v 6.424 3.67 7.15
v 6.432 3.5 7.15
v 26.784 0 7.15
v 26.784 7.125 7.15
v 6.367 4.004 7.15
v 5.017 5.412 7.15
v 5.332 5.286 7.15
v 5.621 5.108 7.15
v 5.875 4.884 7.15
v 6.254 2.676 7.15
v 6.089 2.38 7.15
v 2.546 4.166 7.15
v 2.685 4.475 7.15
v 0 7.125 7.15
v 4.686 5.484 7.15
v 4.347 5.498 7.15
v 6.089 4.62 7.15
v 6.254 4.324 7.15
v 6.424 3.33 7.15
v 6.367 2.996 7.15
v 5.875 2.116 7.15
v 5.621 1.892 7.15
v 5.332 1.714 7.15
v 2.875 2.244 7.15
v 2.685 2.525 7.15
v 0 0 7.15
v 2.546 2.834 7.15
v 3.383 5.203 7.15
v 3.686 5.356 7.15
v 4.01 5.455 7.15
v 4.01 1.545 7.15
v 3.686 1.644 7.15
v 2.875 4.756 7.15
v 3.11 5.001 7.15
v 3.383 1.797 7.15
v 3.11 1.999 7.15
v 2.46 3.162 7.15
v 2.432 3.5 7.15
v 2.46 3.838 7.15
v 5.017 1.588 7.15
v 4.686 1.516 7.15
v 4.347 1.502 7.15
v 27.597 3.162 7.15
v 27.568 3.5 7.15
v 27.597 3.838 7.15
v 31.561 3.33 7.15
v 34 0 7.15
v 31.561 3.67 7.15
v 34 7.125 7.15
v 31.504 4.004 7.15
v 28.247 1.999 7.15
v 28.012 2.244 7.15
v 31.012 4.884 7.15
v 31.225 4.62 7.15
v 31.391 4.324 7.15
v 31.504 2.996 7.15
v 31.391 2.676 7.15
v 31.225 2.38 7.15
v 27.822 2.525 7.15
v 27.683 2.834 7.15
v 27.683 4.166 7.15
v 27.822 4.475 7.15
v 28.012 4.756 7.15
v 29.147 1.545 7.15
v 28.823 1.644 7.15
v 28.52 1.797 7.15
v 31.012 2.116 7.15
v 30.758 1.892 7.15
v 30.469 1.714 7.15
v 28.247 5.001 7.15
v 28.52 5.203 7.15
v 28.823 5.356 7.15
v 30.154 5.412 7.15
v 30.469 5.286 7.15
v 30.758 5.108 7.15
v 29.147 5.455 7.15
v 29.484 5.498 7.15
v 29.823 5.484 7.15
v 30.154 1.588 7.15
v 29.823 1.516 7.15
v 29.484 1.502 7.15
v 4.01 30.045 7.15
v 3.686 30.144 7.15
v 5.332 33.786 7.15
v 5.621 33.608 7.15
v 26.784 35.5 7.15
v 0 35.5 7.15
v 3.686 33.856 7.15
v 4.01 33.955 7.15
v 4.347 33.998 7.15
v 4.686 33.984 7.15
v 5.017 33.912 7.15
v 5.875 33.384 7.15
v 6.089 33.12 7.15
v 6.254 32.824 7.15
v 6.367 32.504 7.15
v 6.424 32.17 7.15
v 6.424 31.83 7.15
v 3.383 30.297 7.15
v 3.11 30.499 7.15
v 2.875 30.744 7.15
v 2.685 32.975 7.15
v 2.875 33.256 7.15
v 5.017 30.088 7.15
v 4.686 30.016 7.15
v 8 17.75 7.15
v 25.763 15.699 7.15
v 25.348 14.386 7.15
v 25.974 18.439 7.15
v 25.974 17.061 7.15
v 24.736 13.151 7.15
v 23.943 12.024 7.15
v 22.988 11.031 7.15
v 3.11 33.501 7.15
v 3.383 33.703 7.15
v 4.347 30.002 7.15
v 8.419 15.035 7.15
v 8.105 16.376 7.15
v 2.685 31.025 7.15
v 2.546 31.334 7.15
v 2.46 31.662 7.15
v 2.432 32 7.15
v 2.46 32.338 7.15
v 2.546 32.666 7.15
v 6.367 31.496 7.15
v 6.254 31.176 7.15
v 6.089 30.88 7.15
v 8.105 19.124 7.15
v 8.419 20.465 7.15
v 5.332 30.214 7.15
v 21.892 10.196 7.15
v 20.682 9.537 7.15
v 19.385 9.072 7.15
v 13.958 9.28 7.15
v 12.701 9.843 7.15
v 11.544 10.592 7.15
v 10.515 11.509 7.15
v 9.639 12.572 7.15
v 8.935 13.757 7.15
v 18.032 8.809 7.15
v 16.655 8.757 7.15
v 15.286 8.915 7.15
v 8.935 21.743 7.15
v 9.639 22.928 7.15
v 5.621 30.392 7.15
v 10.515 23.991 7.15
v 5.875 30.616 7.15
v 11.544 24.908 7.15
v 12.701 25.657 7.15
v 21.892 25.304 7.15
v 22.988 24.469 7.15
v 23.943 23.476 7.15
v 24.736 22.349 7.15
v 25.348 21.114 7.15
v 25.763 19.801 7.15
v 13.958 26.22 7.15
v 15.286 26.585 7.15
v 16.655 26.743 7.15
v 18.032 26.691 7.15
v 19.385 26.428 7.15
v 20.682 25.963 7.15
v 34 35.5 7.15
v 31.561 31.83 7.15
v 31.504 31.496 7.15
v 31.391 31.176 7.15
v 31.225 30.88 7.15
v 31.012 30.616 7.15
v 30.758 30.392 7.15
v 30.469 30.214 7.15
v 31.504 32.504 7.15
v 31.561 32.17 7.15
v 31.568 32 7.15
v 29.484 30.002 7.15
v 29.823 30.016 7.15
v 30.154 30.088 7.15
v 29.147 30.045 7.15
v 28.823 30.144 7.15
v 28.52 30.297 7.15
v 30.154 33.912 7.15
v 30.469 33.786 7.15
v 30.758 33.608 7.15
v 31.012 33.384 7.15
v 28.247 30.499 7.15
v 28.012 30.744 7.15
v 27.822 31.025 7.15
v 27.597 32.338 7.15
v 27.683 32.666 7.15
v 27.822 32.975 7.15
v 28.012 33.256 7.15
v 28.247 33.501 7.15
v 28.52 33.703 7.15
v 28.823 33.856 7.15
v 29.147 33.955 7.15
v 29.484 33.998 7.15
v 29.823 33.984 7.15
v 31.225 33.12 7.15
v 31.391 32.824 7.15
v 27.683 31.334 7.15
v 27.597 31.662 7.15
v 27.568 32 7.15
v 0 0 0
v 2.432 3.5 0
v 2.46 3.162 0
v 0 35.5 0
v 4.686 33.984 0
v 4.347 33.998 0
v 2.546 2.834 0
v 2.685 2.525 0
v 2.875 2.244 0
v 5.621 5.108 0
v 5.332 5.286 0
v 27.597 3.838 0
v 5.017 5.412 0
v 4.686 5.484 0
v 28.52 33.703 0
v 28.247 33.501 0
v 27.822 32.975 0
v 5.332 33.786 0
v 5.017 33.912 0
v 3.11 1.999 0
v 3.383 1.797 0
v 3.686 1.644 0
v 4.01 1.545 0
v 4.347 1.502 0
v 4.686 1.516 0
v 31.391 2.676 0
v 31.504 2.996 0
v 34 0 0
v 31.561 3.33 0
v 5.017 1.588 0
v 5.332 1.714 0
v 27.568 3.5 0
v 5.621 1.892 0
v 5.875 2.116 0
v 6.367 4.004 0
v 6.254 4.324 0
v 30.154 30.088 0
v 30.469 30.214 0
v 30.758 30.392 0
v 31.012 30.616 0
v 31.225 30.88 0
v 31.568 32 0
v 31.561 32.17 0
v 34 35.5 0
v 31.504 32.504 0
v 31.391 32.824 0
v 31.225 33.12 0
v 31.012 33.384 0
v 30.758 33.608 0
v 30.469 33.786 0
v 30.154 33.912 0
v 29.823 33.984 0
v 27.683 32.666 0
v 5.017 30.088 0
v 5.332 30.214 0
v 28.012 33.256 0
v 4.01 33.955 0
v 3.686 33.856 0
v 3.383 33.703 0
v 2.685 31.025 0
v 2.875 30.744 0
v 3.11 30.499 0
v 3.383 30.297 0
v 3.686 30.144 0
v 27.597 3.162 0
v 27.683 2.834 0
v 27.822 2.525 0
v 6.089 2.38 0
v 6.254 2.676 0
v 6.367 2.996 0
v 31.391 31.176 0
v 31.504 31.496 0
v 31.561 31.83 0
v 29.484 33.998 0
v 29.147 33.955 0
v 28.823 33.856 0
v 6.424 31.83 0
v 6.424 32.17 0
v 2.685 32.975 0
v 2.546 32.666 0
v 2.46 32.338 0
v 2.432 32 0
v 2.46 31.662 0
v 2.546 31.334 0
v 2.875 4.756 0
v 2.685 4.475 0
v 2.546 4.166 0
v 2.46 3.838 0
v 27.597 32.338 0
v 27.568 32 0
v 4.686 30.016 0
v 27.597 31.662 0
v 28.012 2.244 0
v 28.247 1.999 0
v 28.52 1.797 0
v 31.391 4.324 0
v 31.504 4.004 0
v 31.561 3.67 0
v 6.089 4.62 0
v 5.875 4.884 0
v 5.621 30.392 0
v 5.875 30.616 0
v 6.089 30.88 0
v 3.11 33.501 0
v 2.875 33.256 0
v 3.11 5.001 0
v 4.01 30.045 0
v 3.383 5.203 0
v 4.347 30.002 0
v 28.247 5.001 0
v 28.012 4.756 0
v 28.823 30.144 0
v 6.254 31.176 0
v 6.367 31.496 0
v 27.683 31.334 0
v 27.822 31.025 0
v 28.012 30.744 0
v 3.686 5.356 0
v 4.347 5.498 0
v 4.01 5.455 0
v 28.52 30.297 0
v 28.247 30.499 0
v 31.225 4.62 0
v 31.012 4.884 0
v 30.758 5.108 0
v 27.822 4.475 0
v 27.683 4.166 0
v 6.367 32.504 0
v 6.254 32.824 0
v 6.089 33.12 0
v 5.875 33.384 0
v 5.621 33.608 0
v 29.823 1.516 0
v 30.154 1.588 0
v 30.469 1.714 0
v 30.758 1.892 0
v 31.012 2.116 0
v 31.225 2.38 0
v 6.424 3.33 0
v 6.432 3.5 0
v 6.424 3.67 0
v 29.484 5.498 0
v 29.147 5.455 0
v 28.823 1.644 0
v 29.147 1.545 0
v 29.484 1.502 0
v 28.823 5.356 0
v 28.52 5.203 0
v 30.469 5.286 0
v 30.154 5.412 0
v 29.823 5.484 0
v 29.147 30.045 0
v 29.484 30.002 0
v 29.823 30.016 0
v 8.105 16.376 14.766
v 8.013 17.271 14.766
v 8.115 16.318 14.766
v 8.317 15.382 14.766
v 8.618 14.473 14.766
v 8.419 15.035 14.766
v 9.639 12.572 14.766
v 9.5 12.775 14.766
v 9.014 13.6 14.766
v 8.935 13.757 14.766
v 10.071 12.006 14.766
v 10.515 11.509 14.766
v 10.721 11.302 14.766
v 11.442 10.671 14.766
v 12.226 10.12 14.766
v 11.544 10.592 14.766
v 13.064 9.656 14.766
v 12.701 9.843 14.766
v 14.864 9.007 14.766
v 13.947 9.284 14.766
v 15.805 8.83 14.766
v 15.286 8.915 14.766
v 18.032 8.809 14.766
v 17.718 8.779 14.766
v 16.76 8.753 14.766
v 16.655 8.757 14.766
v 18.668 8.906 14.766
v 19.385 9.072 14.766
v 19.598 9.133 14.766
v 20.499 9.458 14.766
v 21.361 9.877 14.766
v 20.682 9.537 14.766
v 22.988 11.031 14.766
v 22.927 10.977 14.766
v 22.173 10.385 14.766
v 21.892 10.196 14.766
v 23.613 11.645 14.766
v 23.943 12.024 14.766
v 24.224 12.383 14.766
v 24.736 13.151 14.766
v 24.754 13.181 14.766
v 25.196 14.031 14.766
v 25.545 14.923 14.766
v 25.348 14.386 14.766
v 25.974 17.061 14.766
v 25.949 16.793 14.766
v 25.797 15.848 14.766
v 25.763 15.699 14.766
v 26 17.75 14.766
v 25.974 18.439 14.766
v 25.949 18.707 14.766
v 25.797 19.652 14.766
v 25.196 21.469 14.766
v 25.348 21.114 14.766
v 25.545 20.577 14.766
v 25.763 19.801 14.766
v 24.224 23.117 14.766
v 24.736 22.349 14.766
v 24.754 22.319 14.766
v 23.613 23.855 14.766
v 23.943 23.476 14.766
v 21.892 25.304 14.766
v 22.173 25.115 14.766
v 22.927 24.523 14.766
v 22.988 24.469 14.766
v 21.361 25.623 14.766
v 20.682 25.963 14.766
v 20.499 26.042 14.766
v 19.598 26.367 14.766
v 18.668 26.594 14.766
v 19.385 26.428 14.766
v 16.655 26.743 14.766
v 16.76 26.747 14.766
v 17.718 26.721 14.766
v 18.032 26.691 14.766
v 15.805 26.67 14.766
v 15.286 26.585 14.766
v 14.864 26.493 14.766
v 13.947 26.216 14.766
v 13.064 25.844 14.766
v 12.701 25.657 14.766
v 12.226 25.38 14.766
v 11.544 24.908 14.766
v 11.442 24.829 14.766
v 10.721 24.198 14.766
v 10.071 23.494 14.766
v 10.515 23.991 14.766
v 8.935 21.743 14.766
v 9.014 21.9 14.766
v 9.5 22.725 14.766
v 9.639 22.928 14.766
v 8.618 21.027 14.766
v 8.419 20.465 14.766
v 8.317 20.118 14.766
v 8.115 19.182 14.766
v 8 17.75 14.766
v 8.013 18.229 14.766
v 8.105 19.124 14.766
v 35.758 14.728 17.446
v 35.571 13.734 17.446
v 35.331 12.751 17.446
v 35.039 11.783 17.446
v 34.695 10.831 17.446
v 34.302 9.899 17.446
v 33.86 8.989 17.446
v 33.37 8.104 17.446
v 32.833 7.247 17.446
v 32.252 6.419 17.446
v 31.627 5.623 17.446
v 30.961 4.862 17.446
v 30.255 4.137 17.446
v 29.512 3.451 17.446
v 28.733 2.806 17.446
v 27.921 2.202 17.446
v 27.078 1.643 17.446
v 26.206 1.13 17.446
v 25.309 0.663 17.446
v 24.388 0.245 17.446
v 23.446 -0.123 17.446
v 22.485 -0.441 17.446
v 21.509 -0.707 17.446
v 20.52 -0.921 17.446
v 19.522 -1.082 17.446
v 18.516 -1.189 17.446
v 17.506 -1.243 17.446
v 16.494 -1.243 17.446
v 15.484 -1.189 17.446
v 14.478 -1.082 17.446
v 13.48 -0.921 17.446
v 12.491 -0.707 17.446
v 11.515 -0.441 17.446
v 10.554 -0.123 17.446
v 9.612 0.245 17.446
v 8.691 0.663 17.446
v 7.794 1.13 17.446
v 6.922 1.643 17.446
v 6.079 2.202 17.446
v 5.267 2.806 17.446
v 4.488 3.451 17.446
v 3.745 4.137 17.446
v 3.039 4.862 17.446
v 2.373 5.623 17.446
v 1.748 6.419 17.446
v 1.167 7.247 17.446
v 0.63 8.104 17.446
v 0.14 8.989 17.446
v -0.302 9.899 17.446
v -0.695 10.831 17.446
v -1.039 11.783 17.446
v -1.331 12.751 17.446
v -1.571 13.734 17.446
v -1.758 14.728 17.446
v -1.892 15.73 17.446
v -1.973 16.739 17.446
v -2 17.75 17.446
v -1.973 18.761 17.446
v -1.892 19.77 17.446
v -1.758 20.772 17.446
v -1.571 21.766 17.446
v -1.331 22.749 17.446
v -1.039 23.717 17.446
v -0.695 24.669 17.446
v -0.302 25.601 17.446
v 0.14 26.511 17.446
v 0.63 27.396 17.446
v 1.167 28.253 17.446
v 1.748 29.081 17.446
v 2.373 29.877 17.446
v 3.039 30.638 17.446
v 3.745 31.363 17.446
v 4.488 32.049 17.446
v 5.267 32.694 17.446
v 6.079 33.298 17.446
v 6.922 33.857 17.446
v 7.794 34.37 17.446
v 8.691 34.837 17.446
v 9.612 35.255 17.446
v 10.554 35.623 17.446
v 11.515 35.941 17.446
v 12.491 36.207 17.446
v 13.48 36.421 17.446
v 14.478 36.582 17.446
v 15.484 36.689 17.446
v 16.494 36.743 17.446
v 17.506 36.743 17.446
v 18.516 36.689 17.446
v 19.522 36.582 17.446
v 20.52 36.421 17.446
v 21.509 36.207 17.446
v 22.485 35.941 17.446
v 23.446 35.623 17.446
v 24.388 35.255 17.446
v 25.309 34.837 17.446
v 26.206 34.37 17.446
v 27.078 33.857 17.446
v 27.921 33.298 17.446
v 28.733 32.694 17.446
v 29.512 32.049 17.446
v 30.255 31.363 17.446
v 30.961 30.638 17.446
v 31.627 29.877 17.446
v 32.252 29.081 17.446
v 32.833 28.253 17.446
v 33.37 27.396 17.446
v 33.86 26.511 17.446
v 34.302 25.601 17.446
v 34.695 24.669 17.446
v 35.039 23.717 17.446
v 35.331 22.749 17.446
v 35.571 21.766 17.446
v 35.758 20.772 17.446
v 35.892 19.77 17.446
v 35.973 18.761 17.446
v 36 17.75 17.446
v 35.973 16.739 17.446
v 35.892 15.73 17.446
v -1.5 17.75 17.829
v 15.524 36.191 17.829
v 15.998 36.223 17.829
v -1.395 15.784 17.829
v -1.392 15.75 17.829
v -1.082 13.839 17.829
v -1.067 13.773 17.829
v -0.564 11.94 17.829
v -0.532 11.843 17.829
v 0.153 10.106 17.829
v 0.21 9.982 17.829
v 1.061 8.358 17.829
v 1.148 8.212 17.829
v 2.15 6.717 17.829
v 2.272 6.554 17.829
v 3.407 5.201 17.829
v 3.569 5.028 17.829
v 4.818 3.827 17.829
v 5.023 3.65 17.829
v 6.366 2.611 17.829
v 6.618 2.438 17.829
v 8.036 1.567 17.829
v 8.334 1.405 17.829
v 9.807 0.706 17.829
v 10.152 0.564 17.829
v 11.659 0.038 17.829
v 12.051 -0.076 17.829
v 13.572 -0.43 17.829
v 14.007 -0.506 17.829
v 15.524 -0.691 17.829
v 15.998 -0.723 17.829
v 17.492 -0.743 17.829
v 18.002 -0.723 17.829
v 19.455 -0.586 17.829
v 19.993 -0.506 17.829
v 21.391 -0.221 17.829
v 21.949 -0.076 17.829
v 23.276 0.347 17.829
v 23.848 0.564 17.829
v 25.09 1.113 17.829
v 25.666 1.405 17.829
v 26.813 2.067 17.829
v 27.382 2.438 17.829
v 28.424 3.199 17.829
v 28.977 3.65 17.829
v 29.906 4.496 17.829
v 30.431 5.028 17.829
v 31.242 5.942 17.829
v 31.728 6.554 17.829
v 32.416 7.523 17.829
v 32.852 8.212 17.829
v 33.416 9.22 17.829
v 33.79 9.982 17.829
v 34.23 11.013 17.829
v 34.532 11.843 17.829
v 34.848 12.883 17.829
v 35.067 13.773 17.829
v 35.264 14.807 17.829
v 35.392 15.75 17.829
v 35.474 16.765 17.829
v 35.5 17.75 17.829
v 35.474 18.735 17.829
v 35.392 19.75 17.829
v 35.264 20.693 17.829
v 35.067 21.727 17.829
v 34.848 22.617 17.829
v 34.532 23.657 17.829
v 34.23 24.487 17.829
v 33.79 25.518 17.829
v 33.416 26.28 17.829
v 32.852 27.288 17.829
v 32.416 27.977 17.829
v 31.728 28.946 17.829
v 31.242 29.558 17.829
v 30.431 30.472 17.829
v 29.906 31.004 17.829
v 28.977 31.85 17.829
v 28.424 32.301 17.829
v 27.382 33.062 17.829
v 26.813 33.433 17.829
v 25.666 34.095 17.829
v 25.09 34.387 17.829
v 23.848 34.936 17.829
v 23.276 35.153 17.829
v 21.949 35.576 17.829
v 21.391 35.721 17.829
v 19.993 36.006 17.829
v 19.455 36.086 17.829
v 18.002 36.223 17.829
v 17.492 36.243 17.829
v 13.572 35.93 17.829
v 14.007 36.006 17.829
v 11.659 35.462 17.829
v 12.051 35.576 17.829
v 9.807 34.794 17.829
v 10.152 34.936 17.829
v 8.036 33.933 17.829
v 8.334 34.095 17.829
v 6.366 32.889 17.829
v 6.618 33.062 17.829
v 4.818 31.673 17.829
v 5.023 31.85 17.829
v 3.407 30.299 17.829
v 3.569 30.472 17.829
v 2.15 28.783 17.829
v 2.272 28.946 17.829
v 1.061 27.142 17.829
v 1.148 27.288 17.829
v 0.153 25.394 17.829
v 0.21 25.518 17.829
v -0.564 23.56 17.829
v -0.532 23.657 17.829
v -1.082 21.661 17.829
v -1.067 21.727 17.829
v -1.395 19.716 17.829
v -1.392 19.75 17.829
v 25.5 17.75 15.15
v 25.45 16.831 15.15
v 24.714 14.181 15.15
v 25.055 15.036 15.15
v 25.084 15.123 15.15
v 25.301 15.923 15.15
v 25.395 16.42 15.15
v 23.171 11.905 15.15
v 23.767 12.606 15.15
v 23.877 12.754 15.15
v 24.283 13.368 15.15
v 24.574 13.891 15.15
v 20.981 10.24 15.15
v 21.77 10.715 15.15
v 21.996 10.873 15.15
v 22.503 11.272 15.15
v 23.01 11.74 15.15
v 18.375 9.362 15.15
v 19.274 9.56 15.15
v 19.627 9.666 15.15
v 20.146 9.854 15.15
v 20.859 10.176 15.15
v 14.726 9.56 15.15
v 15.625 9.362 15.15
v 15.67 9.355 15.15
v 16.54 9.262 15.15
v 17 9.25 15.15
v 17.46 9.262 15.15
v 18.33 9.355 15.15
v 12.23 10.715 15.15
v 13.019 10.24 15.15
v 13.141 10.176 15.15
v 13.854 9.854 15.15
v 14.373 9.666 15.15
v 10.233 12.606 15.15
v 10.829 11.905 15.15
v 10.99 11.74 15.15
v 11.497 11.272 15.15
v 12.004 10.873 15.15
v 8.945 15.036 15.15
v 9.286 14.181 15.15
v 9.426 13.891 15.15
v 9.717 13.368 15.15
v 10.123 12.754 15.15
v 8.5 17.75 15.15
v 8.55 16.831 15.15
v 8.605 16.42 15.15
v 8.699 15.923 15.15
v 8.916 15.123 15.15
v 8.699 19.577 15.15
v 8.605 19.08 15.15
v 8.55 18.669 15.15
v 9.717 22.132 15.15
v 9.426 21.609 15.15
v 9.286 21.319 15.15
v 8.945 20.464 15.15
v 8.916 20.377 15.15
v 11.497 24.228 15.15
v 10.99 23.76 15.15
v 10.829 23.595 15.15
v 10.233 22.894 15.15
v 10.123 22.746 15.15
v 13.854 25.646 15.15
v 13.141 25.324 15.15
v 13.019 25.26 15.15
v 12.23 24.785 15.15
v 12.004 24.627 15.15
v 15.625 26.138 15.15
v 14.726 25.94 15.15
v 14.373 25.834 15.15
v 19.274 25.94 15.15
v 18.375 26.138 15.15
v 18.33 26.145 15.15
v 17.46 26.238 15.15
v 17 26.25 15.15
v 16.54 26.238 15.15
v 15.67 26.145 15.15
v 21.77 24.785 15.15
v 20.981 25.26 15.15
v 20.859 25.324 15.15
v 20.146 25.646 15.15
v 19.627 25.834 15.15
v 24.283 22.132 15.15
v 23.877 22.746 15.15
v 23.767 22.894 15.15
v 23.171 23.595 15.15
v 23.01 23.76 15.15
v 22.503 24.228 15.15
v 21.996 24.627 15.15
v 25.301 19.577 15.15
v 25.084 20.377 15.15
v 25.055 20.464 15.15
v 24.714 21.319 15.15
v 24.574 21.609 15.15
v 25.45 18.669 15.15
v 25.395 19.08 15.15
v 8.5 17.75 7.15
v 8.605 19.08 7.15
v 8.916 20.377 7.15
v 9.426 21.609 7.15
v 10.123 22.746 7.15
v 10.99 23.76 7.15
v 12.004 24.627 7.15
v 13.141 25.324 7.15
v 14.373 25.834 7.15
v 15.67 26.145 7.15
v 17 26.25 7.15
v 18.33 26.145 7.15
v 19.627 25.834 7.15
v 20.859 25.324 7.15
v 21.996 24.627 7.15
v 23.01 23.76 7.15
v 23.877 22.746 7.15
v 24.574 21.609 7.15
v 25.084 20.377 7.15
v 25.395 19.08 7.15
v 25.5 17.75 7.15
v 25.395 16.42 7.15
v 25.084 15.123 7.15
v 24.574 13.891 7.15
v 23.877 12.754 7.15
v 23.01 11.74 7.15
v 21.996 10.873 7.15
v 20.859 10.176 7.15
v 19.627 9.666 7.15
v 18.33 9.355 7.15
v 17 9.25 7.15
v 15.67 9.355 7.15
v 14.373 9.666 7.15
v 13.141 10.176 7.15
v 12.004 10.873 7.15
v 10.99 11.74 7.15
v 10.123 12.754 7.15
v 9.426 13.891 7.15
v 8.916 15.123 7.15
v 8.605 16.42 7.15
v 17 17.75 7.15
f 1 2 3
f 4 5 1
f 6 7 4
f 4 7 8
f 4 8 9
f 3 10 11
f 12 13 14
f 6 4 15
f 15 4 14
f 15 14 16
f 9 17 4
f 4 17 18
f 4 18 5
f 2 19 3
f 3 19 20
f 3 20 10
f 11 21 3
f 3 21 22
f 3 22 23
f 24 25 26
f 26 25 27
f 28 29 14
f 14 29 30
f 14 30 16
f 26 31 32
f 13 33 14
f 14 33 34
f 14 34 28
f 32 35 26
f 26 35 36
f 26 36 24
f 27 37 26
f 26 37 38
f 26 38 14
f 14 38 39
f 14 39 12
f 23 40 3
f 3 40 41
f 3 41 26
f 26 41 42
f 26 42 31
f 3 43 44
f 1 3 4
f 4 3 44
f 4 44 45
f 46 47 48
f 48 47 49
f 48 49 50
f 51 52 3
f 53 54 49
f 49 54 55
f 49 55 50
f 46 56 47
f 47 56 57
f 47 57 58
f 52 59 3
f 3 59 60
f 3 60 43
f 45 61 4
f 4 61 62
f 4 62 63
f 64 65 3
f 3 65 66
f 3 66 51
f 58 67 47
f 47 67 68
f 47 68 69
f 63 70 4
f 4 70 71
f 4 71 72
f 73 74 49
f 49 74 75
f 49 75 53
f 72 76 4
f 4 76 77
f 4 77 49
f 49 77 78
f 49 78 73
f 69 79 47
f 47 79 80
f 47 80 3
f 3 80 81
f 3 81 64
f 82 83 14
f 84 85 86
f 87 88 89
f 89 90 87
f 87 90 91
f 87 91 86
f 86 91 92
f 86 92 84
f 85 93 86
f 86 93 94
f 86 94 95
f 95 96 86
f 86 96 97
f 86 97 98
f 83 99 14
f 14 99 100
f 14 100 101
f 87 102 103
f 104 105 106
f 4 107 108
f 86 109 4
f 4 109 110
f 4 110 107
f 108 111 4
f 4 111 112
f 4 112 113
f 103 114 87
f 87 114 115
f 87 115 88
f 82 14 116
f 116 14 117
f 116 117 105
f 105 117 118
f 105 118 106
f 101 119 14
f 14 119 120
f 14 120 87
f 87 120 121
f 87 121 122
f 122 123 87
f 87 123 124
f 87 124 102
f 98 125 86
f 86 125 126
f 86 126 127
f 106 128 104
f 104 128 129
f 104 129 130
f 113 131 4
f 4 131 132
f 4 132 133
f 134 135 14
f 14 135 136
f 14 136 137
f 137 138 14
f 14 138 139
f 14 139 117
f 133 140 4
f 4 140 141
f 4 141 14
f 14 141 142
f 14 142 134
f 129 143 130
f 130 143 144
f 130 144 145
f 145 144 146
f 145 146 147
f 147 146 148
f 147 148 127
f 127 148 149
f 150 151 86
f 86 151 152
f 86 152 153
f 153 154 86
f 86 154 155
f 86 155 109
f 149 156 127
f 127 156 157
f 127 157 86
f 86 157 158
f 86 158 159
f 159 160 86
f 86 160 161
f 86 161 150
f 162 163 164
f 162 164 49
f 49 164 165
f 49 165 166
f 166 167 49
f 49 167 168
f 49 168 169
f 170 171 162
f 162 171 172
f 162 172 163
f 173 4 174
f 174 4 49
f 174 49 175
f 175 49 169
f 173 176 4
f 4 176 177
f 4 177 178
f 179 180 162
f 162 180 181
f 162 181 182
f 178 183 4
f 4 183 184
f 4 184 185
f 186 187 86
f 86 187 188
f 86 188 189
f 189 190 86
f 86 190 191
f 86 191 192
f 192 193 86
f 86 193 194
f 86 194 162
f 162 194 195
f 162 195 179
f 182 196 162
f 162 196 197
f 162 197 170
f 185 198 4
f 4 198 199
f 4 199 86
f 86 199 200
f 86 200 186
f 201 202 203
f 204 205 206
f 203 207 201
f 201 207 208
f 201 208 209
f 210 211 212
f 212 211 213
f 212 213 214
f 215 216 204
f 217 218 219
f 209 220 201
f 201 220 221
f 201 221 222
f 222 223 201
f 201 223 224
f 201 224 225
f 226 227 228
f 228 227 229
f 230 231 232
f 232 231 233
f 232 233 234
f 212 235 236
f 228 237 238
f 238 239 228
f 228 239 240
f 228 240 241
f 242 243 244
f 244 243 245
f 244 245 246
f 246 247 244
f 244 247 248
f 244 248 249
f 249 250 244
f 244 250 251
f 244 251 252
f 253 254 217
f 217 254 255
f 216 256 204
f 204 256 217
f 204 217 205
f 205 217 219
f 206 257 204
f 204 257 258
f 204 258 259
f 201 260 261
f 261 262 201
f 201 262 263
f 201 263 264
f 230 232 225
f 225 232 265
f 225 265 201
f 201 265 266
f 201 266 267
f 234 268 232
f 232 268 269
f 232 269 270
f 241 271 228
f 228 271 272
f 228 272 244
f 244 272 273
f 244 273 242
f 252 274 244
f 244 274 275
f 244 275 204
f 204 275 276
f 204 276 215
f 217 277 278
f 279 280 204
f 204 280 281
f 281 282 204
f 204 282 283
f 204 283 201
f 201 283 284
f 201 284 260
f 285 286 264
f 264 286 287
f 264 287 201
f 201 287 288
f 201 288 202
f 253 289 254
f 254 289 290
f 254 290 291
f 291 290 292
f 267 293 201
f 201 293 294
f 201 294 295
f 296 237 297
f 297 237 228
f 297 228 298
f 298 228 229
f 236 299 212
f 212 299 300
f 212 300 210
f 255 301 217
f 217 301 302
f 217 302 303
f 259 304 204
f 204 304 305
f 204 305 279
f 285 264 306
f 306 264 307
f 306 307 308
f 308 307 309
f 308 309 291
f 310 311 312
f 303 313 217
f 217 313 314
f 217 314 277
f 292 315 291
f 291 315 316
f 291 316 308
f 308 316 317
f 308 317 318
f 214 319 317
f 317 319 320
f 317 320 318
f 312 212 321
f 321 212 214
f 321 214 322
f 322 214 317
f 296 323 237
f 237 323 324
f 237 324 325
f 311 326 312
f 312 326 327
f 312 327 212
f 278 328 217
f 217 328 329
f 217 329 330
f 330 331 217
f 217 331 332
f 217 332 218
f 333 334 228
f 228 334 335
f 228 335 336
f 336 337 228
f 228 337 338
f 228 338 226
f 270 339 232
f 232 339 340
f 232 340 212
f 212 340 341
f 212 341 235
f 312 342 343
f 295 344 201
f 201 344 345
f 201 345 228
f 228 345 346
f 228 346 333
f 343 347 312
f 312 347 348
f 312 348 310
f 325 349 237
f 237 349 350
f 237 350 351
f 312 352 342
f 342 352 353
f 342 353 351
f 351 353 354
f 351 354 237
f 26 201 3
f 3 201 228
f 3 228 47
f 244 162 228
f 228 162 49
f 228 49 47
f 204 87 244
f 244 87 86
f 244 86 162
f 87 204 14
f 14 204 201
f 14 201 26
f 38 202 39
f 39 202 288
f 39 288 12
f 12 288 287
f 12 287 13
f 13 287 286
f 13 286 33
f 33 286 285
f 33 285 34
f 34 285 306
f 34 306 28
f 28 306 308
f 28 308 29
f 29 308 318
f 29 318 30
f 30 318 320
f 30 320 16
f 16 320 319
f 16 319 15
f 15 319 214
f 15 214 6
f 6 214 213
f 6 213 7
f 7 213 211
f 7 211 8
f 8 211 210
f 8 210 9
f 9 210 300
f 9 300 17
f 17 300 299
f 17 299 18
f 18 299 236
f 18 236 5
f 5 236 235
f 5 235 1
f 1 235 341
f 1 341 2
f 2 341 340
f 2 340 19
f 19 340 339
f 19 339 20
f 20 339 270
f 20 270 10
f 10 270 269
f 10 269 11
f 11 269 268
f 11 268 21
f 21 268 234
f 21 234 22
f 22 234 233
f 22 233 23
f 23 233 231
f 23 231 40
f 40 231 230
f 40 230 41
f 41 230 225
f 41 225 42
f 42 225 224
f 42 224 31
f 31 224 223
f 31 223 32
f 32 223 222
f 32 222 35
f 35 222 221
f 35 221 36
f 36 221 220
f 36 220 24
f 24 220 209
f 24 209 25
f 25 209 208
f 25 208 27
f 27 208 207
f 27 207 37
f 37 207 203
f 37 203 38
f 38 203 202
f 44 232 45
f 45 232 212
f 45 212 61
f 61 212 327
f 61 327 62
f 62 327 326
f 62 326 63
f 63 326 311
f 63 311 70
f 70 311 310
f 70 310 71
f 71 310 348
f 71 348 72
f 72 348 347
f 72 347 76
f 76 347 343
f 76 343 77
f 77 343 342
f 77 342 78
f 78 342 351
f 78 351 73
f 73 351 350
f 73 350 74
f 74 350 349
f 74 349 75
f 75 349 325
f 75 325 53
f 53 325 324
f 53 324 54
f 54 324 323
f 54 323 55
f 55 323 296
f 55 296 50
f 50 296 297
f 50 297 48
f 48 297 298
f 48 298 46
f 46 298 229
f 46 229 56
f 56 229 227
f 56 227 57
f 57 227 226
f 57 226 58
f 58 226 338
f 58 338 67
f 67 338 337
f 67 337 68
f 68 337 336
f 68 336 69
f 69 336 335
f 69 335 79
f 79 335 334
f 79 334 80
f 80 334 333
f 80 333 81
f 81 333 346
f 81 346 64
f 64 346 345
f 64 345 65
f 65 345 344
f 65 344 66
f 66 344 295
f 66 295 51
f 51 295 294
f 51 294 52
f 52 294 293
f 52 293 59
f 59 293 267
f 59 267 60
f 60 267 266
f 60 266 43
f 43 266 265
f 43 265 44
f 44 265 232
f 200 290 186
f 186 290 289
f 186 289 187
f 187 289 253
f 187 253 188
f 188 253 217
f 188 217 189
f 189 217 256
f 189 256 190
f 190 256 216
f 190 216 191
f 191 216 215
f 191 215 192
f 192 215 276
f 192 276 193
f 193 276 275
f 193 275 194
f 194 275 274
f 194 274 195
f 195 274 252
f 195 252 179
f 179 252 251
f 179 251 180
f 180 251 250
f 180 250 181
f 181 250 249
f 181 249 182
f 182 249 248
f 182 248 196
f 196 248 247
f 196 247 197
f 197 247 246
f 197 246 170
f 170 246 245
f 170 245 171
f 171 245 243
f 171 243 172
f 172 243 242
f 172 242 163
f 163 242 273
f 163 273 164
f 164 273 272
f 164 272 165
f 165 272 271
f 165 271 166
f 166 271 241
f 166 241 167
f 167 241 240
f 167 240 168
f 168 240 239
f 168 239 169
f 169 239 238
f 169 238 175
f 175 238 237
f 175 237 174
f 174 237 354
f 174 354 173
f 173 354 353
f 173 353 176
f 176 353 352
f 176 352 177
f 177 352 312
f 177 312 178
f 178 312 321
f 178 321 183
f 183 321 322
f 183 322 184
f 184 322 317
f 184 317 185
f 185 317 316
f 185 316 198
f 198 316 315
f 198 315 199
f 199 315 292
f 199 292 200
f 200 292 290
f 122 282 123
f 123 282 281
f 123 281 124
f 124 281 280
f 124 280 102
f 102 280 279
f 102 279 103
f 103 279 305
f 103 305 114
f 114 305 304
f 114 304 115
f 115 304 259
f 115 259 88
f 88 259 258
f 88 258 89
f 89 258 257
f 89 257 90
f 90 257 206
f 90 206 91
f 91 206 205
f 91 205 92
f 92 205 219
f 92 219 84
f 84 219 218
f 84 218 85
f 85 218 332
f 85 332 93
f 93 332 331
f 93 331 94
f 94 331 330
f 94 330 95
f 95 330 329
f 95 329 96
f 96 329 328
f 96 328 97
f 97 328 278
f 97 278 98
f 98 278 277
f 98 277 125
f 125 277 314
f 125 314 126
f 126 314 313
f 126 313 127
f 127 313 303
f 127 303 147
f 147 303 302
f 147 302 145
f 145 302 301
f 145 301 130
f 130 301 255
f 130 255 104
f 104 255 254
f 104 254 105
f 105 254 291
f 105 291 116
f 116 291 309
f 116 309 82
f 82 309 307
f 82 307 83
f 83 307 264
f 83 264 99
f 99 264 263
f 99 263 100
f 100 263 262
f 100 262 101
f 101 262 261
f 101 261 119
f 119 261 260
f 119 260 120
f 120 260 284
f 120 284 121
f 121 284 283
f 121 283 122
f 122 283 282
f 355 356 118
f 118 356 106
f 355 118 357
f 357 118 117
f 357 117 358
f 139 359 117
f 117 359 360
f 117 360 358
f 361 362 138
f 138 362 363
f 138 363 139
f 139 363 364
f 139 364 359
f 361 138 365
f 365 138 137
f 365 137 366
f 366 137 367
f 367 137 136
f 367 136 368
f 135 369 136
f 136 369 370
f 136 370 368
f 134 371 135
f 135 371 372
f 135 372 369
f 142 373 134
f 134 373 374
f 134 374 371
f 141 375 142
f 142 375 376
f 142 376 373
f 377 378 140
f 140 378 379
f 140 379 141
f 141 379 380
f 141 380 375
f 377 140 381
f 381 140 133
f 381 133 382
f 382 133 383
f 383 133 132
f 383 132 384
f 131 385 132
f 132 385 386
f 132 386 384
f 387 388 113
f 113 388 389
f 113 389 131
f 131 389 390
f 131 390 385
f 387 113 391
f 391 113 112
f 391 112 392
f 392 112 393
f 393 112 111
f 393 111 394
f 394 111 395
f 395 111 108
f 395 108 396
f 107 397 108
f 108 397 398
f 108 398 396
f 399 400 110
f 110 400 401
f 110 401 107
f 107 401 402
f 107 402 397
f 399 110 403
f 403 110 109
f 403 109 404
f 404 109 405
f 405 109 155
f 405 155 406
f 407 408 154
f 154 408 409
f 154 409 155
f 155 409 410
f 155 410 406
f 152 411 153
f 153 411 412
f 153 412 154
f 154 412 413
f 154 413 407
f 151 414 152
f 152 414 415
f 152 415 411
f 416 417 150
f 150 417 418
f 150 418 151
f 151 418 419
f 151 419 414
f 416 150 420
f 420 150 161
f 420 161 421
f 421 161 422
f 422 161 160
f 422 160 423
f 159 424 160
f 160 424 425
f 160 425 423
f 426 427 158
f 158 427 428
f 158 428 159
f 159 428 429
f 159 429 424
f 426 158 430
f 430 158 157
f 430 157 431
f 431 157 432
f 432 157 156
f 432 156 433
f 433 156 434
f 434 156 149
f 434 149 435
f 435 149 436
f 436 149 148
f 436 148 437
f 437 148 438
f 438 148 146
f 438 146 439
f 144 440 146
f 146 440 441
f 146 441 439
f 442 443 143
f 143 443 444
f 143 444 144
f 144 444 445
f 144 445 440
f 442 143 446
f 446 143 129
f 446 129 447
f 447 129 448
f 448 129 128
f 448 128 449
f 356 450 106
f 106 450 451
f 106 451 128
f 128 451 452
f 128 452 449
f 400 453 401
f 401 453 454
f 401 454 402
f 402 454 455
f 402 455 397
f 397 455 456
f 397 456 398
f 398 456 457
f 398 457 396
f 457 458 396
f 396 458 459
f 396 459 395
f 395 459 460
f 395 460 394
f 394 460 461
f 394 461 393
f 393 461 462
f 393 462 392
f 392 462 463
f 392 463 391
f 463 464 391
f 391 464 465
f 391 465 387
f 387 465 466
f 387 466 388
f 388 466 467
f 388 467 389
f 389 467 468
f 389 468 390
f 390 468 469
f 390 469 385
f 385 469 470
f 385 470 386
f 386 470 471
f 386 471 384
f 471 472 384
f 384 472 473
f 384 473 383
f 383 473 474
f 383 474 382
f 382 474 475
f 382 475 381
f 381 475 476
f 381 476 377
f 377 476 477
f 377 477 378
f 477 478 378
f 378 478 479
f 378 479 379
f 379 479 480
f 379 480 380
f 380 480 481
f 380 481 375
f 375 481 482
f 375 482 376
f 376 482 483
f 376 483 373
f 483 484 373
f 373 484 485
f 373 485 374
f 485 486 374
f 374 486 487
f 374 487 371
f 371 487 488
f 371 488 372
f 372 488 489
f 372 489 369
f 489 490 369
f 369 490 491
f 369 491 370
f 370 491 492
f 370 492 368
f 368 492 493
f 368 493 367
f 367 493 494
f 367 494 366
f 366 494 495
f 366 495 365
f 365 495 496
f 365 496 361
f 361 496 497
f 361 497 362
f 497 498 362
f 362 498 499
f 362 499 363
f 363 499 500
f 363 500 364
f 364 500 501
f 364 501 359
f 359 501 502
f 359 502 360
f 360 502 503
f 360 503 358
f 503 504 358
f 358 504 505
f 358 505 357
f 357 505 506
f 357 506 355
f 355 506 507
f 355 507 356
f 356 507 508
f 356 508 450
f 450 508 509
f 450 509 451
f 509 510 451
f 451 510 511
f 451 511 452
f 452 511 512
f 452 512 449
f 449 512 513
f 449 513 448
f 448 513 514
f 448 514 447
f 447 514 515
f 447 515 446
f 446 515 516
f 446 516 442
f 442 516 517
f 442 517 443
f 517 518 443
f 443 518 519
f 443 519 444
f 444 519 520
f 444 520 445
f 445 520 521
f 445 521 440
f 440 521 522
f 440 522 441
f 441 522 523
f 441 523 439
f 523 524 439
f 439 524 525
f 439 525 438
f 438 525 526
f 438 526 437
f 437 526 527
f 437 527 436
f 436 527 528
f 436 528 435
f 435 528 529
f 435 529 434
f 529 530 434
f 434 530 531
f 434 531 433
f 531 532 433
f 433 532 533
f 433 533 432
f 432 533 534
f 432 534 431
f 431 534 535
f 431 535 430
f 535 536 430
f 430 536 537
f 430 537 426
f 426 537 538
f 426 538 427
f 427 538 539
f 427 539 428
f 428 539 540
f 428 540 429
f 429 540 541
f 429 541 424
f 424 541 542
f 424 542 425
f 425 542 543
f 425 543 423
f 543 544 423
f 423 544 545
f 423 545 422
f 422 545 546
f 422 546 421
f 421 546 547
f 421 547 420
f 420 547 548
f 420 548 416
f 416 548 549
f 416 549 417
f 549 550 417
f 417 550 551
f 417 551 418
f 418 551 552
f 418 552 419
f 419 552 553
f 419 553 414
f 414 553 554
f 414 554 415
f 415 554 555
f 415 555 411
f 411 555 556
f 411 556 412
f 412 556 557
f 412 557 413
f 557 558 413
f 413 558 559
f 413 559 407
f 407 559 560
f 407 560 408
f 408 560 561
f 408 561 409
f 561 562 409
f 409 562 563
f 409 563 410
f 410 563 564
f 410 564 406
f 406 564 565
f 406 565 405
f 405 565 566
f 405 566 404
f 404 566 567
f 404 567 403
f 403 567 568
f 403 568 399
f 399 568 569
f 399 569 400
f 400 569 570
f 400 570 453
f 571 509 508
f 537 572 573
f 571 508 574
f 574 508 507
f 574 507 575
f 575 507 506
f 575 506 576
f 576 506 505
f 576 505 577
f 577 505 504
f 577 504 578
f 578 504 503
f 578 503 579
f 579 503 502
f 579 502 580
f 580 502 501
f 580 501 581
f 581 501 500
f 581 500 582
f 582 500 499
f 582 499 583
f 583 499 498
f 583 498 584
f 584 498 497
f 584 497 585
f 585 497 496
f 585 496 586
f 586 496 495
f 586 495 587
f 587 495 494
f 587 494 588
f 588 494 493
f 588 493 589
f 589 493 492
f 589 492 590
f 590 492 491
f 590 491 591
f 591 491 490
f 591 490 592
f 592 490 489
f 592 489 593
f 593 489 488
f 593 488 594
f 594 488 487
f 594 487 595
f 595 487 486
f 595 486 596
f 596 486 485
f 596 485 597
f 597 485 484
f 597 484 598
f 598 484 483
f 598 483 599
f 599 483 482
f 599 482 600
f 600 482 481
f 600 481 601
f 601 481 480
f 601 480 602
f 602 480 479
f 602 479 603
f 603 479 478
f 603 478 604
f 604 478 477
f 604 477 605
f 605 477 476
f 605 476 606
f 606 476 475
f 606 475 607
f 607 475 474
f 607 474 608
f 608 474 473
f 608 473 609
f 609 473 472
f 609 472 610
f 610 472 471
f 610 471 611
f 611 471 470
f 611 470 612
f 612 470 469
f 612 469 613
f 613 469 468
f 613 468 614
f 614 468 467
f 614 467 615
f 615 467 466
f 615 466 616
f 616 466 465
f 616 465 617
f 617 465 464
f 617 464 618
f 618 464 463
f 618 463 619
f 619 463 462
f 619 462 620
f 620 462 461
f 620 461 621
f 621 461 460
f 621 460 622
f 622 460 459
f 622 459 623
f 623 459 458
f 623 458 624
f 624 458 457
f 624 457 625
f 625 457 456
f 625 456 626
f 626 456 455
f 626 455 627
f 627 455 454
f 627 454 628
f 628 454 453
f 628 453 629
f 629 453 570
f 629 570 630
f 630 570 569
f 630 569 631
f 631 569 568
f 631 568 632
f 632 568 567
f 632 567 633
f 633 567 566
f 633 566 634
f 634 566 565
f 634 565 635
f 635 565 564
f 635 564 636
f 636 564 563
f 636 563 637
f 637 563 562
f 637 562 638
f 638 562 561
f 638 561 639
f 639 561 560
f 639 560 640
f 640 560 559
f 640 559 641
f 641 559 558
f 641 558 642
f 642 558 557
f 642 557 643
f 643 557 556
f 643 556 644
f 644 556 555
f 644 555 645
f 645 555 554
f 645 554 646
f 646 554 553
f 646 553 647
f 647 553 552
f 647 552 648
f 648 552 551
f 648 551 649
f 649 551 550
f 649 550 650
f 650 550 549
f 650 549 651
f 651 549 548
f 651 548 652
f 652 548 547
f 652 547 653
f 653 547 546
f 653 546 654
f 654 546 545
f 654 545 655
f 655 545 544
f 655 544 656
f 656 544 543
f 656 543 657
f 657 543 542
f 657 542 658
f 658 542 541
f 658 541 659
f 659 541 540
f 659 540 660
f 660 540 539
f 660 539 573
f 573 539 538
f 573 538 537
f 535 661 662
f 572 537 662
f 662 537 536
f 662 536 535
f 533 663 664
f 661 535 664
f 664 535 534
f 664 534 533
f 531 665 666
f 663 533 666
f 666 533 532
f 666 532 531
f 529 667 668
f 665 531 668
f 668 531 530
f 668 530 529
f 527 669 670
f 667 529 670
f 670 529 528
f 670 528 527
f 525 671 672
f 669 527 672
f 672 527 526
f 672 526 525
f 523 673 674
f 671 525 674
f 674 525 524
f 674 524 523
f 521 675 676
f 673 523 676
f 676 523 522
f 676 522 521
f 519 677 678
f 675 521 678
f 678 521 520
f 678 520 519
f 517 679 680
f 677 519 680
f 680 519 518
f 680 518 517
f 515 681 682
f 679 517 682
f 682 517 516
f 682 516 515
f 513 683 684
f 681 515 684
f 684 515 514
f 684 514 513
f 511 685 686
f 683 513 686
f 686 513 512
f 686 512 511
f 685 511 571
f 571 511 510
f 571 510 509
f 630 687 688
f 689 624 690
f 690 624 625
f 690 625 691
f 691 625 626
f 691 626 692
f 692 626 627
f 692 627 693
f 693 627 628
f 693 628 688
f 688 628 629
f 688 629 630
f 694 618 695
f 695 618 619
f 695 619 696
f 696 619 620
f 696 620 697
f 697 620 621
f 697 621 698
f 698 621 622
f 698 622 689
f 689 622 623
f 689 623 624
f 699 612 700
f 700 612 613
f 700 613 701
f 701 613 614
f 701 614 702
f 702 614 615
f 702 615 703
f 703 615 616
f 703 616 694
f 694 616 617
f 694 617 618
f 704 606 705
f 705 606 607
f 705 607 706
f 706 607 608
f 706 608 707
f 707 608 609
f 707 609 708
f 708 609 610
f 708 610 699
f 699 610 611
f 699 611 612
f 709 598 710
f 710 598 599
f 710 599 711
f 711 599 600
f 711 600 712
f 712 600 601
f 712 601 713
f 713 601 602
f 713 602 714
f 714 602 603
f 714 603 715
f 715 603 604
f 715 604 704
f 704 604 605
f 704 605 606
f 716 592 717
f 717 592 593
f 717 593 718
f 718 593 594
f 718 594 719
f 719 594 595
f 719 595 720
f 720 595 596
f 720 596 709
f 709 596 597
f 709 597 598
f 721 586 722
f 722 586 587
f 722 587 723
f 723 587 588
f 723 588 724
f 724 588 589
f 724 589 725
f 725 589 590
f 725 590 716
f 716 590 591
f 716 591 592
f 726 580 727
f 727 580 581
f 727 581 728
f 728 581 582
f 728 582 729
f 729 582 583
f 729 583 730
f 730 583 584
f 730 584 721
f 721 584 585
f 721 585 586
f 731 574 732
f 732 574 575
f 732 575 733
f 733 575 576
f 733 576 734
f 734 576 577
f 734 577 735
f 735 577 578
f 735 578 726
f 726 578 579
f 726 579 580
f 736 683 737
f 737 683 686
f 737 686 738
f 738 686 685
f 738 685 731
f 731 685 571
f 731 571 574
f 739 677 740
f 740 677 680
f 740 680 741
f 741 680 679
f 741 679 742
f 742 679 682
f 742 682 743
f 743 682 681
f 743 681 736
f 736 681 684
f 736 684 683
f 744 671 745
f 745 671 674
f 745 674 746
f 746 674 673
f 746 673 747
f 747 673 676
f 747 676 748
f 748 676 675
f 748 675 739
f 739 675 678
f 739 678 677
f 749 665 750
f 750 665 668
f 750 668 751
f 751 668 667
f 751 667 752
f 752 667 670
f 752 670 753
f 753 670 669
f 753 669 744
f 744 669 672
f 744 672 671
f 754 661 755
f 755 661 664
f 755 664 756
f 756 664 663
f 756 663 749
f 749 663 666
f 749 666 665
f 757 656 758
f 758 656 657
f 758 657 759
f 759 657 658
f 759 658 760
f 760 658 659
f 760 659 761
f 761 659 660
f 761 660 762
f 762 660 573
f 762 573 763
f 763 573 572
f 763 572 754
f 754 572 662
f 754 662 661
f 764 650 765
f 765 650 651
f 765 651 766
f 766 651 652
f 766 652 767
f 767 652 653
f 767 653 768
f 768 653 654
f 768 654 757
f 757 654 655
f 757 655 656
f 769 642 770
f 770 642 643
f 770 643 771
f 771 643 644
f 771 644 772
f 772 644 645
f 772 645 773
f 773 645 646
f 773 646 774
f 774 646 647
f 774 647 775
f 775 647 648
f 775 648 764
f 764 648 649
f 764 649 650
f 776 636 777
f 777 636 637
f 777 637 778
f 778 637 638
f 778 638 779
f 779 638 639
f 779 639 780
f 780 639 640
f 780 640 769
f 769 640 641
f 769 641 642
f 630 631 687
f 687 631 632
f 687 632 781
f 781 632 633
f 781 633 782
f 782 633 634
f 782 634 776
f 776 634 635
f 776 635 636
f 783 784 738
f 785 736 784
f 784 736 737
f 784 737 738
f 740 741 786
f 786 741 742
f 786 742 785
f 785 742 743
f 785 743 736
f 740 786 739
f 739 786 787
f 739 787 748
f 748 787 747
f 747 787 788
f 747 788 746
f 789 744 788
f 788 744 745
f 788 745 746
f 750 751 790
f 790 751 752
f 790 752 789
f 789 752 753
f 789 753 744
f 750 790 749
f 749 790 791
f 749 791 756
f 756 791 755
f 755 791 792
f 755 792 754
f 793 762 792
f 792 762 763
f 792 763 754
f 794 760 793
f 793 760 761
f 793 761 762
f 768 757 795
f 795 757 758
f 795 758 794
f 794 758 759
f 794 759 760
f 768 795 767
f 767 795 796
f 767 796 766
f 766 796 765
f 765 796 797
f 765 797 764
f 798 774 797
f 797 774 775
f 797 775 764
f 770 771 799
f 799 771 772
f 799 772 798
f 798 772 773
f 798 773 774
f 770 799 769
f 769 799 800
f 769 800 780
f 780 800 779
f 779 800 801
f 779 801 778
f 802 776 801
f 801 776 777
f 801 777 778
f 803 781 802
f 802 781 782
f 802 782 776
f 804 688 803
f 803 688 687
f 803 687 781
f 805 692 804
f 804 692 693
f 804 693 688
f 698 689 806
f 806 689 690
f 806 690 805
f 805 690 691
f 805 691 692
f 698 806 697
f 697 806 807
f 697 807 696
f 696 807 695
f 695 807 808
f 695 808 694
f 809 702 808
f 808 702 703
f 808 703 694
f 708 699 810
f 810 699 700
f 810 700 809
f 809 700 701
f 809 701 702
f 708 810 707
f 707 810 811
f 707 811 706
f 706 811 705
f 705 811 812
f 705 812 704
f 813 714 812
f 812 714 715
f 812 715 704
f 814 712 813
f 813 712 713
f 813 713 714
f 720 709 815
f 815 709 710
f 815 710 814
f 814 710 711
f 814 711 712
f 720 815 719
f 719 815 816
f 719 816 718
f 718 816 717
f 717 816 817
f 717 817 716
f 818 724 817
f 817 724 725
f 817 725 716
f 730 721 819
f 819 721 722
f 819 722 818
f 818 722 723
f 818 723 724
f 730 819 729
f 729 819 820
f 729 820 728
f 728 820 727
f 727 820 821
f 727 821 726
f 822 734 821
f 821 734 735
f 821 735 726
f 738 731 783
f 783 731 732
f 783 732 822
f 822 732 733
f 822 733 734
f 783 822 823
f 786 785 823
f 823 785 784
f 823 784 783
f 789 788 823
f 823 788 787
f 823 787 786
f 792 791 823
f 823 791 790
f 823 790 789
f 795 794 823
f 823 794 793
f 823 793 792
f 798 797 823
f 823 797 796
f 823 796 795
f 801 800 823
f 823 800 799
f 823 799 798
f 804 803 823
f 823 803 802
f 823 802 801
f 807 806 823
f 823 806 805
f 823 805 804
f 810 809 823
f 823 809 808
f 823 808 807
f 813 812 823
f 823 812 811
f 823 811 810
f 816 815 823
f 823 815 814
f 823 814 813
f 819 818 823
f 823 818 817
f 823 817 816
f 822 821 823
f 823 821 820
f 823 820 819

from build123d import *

# Parameters (mm, degrees)
SKETCH1_W           = 34
SKETCH1_H           = 35.5
SKETCH1_R           = 2
BOSS_EXTRUDE1_DEPTH = 7.15


with BuildPart() as part:
    # Sketch1 → Boss-Extrude1 (new body)
    with BuildSketch(Plane.XY):
        with Locations((17, 17.75)):
            Rectangle(SKETCH1_W, SKETCH1_H)
        with Locations((4.431526268, 3.5)):
            Circle(SKETCH1_R, mode=Mode.SUBTRACT)
        with Locations((29.568473732, 3.5)):
            Circle(SKETCH1_R, mode=Mode.SUBTRACT)
        with Locations((29.568473732, 32)):
            Circle(SKETCH1_R, mode=Mode.SUBTRACT)
        with Locations((4.431526268, 32)):
            Circle(SKETCH1_R, mode=Mode.SUBTRACT)
    extrude(amount=BOSS_EXTRUDE1_DEPTH)

    # Sketch4 → Revolve2 (revolve)
    with BuildSketch(Plane(origin=(17, 0, 0), x_dir=(0, 0, -1), z_dir=(1, 0, 0))):
        Polygon((-7.15, 26.25), (-15.15, 26.25), (-17.829491924, 36.25), (-17.44582843, 36.75), (-14.766336506, 26.75), (-7.15, 26.75), align=None)
    revolve(axis=Axis((17, 17.75, 7.15), (0, 0, 1)))


solid = part.part
